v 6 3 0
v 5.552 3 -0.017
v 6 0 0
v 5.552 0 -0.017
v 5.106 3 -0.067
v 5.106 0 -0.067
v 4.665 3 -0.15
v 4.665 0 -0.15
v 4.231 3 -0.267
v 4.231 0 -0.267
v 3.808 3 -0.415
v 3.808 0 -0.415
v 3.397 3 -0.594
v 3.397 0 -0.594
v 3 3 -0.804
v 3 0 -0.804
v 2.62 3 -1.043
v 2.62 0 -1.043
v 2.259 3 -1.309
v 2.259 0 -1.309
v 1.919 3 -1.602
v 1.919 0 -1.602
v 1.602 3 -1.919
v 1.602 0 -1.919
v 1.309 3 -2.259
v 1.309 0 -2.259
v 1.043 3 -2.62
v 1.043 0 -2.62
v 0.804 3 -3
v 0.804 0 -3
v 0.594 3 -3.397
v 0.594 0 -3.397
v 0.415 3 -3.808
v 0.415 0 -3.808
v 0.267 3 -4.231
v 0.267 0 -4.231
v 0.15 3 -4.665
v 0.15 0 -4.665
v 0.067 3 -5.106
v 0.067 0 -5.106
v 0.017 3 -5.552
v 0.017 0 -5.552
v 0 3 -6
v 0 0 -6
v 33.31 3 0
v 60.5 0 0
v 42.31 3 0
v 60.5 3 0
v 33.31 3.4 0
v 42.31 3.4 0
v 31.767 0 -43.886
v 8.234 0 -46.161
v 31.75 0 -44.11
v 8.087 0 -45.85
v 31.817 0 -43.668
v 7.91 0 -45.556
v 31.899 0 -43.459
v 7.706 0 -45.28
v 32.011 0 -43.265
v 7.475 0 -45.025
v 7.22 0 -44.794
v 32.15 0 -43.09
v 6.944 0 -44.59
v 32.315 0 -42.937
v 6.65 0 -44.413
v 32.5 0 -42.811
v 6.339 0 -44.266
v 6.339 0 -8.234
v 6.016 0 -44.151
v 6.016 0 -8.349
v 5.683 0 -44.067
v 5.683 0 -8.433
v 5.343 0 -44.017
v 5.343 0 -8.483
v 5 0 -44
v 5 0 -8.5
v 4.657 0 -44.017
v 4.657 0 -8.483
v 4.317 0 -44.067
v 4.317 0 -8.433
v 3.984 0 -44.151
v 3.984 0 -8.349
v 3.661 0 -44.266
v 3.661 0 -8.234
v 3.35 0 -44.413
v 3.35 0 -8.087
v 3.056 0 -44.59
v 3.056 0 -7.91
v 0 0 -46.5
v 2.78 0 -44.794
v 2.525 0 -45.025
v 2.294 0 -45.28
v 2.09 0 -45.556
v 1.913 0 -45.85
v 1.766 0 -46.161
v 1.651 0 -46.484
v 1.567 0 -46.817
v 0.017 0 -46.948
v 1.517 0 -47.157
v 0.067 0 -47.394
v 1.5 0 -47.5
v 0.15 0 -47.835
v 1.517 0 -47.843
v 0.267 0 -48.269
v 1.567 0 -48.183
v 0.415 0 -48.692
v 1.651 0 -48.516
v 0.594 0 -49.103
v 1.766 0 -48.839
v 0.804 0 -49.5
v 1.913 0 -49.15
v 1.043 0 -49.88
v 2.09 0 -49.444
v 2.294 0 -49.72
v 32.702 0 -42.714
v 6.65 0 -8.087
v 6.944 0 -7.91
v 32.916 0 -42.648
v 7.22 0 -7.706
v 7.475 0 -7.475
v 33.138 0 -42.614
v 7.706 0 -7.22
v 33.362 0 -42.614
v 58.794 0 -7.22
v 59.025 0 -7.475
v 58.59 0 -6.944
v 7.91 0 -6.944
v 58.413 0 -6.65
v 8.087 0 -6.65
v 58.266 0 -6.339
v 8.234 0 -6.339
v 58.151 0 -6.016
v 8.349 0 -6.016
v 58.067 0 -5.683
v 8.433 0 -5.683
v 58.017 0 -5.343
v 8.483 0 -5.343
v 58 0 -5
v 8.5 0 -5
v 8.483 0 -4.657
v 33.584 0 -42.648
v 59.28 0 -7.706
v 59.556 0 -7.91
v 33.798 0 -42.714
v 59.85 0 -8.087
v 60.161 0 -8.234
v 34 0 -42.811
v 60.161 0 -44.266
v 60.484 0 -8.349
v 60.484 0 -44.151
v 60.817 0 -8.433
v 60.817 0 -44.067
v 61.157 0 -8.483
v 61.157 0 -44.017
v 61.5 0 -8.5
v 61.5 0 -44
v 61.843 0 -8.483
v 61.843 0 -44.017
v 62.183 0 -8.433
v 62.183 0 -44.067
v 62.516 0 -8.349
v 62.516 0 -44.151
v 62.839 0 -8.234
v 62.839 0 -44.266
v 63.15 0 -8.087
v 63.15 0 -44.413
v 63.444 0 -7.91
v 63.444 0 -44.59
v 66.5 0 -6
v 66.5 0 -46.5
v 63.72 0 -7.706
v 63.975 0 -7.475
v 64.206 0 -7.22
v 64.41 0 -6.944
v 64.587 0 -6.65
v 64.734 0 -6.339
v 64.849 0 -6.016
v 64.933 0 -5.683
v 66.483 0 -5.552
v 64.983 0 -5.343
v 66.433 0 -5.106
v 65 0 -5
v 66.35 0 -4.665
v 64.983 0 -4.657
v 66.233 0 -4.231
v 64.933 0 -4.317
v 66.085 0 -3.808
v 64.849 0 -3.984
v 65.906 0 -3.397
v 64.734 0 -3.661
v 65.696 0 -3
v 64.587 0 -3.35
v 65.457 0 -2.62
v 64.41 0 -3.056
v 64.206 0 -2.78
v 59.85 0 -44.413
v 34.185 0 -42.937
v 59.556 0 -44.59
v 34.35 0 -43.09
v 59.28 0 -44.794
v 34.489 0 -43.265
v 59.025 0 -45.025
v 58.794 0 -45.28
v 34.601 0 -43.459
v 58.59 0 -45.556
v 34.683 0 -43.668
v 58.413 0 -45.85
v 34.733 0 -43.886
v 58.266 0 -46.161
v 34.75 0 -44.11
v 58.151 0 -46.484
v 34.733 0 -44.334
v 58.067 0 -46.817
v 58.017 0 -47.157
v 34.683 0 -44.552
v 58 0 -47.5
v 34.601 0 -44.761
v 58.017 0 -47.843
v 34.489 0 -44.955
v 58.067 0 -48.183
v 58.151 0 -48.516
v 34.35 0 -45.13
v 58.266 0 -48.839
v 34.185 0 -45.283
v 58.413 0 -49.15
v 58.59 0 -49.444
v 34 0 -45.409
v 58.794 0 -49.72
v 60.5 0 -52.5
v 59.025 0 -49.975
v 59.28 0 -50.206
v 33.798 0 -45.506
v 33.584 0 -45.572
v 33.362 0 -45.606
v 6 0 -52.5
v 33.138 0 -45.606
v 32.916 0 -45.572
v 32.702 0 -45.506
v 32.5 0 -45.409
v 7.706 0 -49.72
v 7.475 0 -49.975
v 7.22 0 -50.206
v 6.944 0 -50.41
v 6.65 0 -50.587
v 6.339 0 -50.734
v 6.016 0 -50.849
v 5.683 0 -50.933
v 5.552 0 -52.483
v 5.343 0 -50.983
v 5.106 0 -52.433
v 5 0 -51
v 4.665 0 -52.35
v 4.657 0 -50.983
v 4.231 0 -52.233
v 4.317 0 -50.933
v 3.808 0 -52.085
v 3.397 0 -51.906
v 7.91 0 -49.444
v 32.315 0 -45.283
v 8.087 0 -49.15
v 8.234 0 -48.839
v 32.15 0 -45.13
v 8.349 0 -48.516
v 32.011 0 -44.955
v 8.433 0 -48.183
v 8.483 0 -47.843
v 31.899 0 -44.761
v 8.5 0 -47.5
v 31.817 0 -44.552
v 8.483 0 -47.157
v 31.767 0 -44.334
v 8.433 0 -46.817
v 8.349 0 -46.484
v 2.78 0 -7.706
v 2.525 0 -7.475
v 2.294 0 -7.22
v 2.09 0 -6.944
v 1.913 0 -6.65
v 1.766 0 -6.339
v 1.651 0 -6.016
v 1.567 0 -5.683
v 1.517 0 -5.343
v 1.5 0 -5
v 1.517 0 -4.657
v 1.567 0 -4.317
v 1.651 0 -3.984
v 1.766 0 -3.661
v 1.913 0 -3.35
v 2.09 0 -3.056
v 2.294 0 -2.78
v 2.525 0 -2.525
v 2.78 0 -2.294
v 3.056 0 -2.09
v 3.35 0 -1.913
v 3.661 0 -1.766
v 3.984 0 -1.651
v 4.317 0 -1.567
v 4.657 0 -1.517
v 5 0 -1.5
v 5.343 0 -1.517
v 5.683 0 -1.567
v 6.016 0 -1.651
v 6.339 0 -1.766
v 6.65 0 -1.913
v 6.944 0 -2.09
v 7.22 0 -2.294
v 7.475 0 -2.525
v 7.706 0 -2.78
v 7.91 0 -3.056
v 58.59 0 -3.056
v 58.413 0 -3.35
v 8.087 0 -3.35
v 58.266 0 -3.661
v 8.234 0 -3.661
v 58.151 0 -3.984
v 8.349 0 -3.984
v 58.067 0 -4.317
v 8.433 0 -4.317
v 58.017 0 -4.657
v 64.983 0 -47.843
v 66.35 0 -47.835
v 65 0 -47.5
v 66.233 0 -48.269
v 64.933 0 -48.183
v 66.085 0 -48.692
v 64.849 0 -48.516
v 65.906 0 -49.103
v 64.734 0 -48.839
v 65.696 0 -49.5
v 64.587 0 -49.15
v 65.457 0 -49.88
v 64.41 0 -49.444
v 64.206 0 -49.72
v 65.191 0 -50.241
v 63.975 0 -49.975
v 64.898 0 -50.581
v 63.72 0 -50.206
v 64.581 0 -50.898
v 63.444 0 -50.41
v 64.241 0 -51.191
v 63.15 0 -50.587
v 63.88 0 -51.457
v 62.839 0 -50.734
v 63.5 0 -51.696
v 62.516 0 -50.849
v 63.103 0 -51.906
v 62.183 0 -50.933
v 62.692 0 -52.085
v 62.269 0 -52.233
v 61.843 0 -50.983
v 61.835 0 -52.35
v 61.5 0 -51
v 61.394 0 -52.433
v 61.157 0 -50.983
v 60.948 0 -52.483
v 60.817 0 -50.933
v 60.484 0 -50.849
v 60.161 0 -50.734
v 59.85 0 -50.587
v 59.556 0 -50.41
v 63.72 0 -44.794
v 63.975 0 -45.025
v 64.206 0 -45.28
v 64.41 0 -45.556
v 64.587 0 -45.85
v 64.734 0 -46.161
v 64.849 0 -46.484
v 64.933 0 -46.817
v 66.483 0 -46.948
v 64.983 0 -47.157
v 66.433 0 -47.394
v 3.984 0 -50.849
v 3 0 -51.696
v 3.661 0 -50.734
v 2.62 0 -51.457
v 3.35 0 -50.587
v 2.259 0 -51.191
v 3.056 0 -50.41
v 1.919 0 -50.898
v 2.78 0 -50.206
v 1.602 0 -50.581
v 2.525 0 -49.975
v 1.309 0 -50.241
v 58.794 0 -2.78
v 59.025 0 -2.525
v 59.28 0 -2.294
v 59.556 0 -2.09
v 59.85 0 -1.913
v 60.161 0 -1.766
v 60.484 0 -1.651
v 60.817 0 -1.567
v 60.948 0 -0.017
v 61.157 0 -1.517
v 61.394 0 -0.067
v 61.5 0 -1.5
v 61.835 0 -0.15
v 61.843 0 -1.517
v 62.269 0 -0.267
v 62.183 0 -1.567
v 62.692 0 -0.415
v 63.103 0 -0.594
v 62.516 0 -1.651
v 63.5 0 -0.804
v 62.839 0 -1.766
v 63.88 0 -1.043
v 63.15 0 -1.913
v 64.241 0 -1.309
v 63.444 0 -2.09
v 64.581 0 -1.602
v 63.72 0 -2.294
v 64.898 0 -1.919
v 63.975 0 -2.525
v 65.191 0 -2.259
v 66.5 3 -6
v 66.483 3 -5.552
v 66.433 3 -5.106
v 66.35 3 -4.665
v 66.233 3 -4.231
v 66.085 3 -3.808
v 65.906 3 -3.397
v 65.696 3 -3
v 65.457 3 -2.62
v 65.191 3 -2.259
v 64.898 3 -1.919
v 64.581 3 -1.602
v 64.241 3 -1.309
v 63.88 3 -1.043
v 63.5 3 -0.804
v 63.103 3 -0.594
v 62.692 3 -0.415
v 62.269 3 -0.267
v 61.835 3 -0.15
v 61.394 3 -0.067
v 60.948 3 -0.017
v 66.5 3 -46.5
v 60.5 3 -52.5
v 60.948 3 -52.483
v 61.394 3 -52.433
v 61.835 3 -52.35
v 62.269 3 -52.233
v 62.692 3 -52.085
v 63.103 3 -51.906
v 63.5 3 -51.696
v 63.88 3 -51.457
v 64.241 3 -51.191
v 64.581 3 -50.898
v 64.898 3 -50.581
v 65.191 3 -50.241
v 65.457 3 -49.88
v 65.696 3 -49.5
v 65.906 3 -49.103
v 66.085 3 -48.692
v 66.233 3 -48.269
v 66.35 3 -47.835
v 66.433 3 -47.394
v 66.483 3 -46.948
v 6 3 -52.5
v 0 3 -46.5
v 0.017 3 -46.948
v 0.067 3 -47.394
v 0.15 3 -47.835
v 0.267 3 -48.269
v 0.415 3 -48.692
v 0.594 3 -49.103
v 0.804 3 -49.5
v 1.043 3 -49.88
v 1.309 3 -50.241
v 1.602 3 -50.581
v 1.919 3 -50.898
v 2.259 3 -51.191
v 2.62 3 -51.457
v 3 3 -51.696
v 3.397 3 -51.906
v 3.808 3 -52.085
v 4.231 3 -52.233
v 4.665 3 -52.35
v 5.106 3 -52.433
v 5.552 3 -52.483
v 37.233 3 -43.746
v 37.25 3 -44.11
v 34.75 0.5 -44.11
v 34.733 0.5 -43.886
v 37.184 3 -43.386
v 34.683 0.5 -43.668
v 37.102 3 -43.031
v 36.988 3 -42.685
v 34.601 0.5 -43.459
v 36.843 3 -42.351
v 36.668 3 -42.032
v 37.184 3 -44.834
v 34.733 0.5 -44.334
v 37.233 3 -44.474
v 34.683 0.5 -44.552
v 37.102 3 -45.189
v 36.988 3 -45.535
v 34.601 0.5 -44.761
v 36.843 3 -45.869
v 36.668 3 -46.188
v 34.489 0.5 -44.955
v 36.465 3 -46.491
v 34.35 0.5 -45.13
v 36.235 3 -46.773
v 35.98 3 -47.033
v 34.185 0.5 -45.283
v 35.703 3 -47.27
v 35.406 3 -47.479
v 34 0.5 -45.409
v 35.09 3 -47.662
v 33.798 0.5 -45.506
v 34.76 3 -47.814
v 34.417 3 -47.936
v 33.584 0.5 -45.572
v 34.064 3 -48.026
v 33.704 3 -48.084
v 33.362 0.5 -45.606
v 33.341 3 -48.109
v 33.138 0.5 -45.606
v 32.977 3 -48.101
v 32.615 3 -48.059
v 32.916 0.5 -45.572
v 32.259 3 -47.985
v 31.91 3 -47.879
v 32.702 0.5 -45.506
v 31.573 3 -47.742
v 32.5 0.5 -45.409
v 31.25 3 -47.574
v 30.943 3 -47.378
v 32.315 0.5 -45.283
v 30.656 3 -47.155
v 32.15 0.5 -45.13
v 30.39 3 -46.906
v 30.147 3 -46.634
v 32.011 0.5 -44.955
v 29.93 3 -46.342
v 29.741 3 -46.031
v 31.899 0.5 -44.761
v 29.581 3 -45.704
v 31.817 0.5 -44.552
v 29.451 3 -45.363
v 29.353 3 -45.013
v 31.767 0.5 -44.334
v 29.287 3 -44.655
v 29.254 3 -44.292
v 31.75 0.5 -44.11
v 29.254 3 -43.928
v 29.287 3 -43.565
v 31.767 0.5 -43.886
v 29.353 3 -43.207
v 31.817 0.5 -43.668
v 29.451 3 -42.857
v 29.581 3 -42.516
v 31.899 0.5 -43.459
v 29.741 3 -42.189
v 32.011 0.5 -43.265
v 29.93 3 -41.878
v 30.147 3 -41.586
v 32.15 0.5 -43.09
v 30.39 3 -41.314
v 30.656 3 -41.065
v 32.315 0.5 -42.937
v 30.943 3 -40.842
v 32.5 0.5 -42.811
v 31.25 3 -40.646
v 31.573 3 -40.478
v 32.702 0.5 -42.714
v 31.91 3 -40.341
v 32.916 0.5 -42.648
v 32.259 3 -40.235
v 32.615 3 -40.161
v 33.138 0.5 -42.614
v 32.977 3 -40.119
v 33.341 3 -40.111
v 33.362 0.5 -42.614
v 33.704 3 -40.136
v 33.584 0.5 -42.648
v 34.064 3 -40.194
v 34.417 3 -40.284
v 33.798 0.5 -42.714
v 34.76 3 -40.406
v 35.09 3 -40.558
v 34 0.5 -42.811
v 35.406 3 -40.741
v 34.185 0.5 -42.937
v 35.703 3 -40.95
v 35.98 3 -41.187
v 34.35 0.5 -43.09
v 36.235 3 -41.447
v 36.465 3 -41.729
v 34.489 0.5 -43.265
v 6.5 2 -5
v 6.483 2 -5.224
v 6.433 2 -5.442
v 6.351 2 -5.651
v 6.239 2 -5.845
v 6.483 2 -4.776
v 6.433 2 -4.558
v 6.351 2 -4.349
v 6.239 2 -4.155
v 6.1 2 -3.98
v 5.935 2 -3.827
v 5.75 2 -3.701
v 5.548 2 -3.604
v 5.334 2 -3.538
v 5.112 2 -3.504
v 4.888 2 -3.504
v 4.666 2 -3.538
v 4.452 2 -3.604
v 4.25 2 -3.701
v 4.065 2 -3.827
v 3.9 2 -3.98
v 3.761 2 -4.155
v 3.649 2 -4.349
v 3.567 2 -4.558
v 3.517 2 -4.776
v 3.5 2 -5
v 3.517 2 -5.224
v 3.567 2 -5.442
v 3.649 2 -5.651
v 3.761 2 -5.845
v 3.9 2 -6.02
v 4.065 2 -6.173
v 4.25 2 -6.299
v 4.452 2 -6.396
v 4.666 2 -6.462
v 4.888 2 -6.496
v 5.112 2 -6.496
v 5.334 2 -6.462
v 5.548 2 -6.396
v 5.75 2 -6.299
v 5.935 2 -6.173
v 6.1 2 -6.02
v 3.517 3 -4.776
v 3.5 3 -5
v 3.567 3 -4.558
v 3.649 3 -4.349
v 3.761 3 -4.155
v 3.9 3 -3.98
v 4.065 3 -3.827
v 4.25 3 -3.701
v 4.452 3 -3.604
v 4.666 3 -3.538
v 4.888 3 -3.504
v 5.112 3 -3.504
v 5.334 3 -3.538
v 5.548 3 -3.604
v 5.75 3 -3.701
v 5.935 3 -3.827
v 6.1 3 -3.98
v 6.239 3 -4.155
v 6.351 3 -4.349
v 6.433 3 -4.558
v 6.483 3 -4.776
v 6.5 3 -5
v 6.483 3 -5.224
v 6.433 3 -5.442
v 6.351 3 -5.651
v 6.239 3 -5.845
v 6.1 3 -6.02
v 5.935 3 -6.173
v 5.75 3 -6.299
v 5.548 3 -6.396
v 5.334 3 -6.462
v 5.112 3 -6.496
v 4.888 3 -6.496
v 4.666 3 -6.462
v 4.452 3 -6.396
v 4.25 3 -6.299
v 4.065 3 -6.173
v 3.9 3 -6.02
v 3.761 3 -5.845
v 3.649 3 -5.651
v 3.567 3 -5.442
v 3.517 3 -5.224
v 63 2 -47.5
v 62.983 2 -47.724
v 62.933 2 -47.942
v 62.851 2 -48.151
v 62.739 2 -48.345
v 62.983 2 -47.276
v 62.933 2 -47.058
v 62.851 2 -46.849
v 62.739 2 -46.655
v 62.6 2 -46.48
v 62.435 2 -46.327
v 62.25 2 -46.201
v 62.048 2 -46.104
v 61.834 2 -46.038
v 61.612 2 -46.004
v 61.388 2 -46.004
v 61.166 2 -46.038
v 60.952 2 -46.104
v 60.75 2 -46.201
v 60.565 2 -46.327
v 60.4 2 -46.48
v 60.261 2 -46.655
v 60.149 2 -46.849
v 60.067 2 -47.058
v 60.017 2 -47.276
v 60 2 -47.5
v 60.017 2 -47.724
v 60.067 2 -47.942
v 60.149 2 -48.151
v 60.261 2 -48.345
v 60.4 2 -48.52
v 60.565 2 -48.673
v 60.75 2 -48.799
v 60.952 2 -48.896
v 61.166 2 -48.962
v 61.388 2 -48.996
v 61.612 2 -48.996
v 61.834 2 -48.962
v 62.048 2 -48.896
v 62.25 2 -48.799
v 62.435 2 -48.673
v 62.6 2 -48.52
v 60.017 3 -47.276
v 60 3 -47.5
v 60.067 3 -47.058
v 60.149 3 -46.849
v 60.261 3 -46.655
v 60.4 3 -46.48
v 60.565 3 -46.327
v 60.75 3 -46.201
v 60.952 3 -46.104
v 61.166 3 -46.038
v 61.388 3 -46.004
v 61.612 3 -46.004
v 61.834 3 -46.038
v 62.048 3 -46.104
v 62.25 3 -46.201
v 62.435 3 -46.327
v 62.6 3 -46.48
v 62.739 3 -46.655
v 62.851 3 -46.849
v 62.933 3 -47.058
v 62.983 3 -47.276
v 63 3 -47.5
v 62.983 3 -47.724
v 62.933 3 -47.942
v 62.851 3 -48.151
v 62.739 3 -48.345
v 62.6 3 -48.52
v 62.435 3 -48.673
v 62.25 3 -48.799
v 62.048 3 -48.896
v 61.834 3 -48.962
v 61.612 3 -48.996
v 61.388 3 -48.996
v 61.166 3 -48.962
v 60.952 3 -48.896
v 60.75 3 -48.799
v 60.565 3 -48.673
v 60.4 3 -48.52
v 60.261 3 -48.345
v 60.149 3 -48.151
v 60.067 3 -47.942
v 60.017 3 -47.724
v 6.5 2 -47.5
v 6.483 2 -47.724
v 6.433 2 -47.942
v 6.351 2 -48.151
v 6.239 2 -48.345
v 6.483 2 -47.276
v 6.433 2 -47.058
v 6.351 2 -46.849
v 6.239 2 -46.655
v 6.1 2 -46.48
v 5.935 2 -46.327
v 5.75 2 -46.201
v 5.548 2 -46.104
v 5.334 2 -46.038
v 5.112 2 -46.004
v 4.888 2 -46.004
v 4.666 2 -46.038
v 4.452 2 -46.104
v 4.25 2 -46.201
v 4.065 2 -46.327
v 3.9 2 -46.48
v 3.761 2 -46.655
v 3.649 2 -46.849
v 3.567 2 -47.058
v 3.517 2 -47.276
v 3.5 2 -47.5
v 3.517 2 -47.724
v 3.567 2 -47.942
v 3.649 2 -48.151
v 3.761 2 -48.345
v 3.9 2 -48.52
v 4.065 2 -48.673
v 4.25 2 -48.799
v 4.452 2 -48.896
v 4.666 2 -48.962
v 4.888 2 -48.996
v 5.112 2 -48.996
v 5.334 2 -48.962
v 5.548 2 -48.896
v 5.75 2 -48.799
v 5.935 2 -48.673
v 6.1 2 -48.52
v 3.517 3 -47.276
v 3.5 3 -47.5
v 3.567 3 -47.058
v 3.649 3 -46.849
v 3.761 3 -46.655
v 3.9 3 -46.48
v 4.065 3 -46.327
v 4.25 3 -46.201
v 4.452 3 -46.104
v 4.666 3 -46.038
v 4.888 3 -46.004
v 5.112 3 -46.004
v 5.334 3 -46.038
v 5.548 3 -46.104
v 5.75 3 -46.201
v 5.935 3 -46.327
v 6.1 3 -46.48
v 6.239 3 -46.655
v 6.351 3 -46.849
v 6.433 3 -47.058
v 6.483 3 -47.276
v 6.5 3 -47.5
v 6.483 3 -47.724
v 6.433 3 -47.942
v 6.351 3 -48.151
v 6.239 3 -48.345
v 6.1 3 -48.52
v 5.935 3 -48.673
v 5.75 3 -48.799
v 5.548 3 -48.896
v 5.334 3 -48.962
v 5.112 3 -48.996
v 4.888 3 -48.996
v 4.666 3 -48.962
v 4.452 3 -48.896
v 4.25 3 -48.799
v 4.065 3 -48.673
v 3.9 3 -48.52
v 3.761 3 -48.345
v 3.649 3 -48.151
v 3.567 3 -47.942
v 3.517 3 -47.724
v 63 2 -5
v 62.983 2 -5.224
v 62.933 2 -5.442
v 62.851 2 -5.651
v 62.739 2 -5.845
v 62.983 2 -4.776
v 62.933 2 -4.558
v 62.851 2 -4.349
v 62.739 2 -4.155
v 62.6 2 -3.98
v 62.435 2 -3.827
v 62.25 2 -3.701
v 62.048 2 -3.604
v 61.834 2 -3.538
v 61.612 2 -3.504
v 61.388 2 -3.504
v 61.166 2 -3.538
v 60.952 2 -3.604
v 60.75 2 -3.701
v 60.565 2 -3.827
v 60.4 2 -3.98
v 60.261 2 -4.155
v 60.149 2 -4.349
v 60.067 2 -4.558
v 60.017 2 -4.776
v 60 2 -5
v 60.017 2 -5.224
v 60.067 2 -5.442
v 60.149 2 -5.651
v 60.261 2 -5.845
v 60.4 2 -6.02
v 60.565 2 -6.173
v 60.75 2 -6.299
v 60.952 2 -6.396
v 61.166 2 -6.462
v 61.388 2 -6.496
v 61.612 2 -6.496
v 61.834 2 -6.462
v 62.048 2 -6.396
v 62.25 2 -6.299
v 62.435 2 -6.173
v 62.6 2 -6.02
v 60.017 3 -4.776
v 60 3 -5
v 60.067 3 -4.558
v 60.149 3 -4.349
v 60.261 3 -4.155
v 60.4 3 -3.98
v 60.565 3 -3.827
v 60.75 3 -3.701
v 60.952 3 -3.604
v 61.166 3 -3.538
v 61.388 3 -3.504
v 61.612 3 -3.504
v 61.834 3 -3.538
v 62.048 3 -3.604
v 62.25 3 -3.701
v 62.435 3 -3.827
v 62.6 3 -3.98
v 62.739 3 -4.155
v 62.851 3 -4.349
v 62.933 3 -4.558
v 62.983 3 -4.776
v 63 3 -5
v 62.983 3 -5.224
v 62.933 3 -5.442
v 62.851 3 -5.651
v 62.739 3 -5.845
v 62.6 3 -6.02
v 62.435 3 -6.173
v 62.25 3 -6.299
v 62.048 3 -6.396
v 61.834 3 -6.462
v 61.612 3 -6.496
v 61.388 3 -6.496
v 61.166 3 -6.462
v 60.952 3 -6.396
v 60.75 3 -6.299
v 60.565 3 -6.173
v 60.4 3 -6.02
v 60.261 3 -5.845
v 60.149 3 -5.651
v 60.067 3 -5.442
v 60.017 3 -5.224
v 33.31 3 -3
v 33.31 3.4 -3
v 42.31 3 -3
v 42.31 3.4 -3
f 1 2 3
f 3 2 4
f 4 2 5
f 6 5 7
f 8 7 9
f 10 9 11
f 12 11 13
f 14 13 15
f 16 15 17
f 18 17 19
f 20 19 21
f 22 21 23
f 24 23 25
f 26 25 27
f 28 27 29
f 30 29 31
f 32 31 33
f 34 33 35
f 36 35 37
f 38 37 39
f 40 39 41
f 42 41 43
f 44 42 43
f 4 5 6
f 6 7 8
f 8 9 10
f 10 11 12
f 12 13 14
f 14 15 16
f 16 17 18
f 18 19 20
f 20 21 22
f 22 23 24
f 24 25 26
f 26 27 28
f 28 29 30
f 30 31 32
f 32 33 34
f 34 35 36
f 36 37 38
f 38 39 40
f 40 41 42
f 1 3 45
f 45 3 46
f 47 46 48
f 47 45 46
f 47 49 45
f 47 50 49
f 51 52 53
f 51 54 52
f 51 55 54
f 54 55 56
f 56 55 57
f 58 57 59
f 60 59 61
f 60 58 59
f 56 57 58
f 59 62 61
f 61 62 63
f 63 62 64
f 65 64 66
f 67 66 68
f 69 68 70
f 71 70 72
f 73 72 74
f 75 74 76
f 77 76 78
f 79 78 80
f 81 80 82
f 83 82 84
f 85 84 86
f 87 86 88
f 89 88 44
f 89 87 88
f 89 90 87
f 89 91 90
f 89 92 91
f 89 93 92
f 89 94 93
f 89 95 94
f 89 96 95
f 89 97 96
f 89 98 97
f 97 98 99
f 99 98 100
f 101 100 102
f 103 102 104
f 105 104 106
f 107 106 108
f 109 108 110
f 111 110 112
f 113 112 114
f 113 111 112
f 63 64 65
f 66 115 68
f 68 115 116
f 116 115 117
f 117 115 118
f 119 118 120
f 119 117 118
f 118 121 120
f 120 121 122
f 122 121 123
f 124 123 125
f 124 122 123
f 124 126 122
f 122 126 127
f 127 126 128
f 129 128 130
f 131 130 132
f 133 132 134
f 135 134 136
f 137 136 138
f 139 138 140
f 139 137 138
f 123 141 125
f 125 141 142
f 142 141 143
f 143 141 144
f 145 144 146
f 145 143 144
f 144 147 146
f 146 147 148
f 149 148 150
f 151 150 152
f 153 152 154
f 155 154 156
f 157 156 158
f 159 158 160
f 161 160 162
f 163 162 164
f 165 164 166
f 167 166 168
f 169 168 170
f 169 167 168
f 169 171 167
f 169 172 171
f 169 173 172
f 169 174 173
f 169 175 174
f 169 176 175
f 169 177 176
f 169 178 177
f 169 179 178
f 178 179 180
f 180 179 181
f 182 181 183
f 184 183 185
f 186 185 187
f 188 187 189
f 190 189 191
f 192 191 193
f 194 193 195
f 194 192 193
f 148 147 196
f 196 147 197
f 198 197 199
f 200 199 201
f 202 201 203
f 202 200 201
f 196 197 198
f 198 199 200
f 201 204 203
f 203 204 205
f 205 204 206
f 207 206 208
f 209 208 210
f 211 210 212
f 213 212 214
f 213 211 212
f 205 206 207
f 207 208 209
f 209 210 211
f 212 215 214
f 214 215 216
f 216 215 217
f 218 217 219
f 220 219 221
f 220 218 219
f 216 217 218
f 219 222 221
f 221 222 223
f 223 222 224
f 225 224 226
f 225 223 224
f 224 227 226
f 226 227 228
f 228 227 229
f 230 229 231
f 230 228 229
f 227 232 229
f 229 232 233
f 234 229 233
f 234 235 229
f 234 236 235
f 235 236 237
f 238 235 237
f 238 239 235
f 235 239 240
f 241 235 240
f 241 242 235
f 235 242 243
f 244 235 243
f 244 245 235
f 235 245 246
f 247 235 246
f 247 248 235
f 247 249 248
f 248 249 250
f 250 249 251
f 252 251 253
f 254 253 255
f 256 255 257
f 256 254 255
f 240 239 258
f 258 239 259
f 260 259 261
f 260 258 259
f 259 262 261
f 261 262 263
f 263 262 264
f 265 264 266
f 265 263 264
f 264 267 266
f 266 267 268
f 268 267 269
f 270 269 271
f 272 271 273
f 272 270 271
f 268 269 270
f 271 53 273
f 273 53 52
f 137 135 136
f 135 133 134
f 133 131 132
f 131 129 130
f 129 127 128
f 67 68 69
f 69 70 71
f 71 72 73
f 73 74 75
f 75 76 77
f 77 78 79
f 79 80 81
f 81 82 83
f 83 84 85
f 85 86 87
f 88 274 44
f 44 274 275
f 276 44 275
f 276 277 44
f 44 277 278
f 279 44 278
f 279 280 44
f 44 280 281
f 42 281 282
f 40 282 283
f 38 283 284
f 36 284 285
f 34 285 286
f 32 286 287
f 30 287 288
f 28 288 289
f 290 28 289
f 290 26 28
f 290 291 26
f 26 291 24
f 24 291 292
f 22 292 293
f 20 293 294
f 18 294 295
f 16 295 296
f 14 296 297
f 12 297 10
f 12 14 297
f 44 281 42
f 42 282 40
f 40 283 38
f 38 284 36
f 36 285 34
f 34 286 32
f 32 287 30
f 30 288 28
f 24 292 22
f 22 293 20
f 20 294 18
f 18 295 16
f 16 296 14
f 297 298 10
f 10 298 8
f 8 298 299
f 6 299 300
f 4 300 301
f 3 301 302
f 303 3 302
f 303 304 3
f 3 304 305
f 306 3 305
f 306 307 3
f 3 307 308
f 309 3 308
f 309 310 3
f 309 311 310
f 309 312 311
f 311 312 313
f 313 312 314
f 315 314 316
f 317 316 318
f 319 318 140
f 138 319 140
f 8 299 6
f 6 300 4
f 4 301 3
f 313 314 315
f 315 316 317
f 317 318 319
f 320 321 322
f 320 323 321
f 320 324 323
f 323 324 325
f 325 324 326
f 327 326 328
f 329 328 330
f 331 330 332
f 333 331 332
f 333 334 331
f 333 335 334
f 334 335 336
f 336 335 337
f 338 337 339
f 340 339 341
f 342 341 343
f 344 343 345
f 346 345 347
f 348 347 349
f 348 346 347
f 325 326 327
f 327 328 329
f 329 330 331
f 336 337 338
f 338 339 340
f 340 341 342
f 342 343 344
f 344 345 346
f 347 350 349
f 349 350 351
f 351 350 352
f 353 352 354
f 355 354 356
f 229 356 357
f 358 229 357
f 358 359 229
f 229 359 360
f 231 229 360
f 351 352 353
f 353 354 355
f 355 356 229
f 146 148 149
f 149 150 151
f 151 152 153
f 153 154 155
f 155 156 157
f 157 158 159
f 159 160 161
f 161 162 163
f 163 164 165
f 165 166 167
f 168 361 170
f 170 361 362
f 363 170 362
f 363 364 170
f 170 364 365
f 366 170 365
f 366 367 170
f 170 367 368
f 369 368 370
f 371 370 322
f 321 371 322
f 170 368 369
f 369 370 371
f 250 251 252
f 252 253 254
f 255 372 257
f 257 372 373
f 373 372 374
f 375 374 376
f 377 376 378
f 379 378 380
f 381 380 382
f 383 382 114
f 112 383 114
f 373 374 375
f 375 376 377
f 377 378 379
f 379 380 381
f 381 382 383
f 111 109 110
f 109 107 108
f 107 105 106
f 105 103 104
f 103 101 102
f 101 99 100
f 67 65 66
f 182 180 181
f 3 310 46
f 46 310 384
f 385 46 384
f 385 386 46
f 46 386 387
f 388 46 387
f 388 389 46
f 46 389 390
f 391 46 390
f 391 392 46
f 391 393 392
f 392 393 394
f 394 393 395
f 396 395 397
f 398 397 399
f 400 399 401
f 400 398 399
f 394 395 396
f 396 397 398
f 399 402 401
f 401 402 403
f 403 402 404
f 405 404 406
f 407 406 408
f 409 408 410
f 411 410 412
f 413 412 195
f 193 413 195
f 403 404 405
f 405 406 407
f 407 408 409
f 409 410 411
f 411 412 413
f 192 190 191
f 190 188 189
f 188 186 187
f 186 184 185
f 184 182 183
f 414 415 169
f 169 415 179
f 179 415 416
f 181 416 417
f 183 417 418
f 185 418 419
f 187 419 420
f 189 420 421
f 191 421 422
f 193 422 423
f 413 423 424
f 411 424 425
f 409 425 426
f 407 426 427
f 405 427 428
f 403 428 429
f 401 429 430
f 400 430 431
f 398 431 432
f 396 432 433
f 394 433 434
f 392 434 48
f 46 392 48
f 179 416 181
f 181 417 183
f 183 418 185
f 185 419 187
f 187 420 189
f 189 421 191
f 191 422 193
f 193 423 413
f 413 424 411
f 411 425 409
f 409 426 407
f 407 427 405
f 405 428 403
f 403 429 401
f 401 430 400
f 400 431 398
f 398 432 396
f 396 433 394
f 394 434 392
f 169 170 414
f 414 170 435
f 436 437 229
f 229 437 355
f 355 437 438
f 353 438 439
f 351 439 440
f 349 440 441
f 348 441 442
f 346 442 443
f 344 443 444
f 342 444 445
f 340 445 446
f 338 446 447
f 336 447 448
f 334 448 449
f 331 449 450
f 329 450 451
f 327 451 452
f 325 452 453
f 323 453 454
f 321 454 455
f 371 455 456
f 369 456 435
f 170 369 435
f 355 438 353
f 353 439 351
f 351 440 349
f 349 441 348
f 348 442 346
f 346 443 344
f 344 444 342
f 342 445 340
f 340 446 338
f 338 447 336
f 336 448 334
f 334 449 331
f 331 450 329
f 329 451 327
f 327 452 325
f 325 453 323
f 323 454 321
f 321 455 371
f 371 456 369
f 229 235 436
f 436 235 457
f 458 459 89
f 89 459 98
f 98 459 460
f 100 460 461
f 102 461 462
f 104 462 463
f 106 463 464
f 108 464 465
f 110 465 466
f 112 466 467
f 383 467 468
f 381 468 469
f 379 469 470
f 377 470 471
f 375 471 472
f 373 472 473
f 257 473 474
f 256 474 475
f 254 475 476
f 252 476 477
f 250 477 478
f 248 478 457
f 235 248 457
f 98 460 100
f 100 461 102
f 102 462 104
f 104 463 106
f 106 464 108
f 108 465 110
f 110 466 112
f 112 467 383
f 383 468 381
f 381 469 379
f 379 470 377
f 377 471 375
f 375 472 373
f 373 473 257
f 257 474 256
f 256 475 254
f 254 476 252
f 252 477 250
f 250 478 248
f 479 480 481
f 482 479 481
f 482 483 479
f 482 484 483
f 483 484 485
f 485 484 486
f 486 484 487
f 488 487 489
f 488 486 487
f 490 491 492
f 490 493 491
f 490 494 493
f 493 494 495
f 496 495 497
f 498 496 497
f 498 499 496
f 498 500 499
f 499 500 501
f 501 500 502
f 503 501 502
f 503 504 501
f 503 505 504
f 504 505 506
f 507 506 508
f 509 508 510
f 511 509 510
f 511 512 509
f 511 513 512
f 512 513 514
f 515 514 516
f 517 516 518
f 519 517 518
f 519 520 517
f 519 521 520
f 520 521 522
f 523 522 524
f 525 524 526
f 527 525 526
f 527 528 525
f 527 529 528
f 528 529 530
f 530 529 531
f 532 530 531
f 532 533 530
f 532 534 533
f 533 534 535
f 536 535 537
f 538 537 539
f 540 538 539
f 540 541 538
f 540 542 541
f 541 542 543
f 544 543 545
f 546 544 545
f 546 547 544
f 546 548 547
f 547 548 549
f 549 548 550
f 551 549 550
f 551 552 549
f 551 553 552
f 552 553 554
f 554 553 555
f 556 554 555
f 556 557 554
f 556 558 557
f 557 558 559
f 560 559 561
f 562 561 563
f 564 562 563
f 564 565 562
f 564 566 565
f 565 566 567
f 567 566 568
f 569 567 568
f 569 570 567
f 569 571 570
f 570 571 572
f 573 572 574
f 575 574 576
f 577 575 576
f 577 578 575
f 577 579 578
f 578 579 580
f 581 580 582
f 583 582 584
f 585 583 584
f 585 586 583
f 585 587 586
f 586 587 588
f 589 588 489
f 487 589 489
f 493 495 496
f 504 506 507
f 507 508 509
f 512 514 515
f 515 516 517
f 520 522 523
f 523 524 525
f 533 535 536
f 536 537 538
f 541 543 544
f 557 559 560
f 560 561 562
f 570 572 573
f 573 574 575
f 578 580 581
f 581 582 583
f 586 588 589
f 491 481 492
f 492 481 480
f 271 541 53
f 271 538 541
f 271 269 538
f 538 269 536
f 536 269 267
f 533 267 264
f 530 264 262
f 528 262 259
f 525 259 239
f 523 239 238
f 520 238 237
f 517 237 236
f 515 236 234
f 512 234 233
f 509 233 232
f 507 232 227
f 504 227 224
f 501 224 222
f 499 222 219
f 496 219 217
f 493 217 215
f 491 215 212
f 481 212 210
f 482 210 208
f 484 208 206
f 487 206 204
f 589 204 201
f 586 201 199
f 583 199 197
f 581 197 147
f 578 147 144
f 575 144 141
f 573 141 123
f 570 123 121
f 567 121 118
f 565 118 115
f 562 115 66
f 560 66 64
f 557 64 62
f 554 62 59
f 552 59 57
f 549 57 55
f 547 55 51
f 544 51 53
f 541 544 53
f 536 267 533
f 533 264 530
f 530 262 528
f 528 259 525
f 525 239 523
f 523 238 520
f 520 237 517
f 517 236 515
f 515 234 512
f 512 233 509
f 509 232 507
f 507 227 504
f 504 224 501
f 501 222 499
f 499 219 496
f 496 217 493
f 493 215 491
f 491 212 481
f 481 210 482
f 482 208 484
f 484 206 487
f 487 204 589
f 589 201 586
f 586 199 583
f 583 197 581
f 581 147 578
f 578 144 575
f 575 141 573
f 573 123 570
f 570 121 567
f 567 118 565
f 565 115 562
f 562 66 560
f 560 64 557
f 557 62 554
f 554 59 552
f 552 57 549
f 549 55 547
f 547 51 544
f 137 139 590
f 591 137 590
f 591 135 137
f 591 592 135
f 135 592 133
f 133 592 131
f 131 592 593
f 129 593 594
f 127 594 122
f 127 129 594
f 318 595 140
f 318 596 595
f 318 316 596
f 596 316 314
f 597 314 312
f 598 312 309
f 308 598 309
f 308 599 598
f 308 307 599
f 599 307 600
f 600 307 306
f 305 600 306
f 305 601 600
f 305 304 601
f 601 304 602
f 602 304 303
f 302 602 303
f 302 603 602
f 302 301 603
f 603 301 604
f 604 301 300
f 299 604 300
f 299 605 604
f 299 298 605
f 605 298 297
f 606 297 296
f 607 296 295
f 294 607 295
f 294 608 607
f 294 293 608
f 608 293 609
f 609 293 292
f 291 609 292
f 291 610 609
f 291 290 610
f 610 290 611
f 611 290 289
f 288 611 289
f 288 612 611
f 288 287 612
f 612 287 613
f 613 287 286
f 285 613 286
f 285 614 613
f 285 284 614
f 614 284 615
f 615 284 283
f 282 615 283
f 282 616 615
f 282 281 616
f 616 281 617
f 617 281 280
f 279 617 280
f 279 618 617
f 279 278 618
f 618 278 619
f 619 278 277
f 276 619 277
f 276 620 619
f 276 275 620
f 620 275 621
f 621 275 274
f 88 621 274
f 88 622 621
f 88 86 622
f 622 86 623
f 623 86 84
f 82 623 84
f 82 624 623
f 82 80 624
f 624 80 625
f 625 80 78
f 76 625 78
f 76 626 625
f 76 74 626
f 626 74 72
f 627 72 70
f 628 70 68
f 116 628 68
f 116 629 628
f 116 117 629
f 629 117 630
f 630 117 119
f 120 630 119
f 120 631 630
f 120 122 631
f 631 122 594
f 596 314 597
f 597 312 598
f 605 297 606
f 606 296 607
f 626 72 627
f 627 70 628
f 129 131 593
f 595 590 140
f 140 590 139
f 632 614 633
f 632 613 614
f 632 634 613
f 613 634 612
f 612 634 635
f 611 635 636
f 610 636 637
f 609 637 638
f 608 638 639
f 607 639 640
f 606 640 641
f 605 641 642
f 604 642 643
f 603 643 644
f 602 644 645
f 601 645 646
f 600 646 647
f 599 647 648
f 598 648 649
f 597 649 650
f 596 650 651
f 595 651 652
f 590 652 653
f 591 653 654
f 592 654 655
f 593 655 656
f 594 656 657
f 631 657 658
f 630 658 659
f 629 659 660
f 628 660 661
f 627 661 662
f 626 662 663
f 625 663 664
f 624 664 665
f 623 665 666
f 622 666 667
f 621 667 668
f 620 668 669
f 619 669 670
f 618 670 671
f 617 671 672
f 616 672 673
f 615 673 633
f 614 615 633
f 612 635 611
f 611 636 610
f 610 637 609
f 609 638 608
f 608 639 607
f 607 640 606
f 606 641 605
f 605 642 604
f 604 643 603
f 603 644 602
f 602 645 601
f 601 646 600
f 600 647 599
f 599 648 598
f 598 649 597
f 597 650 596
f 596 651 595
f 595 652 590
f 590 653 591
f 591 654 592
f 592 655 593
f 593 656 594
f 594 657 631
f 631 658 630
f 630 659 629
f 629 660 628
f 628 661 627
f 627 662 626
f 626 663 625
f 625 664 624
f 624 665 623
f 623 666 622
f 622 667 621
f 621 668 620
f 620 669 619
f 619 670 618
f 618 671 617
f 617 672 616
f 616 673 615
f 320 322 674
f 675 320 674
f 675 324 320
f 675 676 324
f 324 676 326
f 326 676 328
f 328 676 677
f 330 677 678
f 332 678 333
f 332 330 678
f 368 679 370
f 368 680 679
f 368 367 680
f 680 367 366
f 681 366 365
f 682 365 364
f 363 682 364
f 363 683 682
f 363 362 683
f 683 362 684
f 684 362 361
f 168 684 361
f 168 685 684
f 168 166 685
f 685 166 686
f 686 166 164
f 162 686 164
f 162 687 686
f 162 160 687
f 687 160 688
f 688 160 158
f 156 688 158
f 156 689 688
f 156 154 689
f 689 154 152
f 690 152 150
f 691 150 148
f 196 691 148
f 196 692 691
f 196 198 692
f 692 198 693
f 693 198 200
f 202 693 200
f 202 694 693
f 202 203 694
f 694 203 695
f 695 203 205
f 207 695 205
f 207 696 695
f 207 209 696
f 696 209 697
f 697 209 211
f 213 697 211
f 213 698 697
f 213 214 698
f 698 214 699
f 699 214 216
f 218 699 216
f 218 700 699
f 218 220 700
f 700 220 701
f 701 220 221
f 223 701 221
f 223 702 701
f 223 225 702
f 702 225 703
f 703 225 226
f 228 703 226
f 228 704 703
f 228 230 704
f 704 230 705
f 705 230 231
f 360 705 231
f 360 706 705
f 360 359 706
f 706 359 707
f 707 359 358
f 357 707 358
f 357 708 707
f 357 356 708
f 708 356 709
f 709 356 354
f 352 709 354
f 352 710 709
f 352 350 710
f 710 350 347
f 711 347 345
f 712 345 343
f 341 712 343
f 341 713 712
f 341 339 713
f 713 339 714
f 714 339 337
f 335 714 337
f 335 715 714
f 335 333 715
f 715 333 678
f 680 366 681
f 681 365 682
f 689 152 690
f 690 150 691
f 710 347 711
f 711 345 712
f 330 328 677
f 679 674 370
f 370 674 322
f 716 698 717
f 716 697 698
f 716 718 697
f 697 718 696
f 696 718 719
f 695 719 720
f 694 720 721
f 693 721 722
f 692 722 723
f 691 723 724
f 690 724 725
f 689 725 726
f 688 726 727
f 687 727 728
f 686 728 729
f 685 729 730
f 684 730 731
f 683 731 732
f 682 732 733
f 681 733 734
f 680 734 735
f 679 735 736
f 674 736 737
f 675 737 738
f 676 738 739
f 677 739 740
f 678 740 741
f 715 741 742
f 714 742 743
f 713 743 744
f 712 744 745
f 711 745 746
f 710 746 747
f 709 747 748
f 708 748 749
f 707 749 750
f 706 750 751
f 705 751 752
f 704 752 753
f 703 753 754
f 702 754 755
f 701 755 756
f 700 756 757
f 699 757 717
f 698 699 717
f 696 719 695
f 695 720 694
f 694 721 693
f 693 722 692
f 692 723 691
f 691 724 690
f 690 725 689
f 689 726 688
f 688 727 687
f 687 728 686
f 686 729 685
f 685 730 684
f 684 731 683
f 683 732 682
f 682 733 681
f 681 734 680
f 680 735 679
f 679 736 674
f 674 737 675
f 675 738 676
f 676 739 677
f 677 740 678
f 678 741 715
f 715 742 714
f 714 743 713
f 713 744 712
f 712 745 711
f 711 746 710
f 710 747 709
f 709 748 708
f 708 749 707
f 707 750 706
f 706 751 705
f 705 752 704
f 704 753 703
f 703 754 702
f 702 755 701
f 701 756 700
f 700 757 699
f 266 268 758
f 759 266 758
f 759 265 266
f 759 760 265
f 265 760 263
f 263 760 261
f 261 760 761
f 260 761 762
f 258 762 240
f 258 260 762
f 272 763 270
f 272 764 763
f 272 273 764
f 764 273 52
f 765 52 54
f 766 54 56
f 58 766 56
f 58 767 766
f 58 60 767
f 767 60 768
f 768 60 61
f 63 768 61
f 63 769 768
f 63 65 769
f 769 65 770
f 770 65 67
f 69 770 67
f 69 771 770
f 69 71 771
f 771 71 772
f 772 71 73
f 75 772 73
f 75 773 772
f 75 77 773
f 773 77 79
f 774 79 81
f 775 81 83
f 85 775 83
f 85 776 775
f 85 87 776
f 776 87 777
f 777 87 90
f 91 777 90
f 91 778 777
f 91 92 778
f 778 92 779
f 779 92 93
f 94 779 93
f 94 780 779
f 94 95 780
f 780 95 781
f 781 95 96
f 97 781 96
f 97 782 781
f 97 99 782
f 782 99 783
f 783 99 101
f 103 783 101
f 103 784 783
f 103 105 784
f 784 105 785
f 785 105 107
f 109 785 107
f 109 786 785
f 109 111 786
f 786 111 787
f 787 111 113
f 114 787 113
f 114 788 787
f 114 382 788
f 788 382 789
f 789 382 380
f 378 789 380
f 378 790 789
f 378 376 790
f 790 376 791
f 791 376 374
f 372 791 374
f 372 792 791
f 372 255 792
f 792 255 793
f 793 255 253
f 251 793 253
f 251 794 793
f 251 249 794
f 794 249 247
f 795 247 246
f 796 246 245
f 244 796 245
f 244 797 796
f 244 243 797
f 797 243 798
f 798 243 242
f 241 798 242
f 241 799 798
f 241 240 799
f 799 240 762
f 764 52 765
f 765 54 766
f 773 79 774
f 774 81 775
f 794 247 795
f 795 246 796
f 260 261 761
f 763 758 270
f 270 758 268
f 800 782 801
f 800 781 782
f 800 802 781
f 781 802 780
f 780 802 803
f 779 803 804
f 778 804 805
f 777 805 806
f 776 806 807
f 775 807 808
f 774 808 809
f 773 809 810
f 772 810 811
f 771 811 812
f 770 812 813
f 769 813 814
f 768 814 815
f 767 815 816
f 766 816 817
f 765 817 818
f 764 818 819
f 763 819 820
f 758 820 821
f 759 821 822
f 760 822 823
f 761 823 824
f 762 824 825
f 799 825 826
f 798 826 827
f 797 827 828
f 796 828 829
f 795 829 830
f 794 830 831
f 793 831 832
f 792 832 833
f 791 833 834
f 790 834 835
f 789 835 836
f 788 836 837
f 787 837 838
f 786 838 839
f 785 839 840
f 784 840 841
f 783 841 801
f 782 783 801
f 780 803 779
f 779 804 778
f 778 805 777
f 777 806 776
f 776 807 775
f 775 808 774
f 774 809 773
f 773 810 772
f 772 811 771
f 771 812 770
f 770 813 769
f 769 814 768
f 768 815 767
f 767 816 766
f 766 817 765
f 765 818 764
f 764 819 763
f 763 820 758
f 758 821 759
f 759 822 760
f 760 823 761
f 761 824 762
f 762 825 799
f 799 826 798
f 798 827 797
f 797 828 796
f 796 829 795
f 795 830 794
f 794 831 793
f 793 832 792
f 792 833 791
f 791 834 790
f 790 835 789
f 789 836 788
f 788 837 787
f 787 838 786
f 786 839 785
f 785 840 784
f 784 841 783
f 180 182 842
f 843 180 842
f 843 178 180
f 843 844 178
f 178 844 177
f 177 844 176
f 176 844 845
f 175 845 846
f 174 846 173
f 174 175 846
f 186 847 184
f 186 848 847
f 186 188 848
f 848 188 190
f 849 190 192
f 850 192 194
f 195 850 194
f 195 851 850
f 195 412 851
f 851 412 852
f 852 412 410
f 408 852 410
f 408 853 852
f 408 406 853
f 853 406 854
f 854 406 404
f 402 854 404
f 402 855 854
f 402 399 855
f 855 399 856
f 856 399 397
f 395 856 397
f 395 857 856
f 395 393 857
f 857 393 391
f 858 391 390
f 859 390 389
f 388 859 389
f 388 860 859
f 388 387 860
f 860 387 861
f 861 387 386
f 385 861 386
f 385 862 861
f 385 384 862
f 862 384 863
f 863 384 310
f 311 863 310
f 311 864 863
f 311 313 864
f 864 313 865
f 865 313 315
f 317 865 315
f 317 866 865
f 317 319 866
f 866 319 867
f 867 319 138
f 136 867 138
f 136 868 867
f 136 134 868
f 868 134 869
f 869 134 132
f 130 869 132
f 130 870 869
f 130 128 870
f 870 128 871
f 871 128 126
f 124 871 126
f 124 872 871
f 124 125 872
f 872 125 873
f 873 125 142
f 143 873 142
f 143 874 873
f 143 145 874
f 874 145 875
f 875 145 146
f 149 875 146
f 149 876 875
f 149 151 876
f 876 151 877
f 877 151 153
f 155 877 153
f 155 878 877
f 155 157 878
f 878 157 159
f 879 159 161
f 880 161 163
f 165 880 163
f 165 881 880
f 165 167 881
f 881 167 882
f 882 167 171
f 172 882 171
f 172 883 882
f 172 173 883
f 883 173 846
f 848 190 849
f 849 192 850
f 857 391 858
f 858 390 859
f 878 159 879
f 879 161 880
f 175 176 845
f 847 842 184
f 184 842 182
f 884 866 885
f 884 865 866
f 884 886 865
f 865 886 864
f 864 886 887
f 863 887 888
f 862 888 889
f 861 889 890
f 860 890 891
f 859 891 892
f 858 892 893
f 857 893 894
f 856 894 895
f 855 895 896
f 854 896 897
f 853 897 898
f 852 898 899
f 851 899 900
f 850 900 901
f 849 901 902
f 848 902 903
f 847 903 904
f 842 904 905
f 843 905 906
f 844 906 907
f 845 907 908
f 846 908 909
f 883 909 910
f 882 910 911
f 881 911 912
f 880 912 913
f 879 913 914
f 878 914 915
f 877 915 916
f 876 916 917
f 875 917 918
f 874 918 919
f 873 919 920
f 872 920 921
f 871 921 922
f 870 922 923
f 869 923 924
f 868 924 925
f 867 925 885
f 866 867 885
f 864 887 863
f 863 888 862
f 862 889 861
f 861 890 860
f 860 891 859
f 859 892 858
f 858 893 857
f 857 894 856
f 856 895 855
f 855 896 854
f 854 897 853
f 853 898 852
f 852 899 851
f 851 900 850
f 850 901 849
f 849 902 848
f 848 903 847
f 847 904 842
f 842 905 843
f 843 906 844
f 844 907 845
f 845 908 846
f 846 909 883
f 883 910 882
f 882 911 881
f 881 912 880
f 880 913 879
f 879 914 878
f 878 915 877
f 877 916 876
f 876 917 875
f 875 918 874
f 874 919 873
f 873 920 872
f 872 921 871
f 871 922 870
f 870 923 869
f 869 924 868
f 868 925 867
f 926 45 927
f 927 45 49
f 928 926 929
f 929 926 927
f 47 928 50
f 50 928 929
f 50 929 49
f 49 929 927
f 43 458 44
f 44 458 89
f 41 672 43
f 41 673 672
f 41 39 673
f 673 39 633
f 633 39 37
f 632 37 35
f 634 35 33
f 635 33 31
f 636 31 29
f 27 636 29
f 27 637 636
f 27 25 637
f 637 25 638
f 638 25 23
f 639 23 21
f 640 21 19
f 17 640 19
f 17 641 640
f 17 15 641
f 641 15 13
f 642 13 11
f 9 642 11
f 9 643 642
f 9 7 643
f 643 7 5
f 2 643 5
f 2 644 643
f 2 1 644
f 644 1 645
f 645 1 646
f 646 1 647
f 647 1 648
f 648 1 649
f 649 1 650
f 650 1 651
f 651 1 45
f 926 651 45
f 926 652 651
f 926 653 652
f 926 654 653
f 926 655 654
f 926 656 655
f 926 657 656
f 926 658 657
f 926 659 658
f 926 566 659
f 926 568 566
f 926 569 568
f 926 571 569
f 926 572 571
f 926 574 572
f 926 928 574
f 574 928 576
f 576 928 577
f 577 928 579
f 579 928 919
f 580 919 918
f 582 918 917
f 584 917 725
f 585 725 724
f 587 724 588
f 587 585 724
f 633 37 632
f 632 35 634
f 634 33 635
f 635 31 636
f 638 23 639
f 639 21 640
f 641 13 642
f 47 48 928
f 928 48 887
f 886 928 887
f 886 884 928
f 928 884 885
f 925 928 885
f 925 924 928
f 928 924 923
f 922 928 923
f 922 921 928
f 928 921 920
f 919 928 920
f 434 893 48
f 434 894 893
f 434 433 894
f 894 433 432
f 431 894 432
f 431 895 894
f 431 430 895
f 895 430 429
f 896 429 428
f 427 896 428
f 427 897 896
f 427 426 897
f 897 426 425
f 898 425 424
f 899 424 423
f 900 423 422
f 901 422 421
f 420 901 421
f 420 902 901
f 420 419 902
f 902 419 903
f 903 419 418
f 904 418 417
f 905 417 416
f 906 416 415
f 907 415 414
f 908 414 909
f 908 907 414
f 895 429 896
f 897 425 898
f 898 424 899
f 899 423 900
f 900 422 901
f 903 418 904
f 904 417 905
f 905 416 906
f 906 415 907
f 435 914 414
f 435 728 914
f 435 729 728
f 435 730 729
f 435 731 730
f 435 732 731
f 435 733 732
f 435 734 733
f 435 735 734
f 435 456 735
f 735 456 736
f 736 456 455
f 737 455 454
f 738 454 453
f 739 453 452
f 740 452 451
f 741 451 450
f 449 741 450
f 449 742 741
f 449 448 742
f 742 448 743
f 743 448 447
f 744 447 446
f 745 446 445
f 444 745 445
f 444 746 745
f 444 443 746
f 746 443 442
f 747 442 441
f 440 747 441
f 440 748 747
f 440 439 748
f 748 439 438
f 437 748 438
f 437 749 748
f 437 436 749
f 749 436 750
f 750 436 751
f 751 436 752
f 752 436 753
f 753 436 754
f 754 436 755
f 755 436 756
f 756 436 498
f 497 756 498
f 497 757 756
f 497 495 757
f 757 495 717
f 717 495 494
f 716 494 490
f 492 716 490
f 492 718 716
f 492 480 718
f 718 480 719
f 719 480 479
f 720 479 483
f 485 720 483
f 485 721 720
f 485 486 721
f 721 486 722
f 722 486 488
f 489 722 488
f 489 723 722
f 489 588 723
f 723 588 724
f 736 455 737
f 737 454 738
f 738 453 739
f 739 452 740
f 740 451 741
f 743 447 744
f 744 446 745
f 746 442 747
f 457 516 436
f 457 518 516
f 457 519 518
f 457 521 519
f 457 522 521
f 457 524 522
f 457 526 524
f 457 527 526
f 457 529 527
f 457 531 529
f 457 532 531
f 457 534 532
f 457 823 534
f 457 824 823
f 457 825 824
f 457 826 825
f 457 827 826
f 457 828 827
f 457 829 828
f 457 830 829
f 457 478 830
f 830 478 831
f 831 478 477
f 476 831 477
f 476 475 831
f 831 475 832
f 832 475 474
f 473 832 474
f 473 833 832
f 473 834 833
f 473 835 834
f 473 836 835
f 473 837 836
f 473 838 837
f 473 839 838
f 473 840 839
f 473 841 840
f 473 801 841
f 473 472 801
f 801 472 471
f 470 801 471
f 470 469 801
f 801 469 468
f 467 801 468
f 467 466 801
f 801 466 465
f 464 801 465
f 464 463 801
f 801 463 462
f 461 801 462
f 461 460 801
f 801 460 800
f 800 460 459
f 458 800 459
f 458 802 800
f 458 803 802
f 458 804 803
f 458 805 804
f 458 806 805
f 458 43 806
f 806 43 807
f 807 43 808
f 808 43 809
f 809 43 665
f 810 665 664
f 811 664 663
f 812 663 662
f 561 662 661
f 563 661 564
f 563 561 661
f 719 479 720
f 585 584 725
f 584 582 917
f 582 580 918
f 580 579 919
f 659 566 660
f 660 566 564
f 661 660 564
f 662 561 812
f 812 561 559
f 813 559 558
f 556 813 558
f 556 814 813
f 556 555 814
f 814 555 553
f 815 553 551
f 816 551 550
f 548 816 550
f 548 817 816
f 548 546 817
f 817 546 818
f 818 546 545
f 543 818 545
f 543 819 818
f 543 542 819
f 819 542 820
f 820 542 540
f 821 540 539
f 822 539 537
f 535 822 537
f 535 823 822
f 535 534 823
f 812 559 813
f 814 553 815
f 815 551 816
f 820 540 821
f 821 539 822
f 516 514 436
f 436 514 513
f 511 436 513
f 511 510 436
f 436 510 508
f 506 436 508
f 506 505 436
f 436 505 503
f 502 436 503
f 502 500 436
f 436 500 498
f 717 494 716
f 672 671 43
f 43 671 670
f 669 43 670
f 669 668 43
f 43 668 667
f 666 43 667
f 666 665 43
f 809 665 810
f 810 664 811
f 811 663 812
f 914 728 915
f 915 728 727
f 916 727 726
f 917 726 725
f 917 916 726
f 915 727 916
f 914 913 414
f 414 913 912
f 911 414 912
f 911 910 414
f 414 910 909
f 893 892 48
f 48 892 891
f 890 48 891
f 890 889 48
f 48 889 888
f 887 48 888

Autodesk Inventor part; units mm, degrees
ref_plane "YZ Plane" through (0, 0, 0) normal (1, 0, 0) x (0, 1, 0)
ref_plane "XZ Plane" through (0, 0, 0) normal (0, 1, 0) x (-1, 0, 0)
ref_plane "XY Plane" through (0, 0, 0) normal (0, 0, 1) x (1, 0, 0)
sketch "Sketch1" plane through (0, 0, 0) normal (0, 1, 0) x (-1, 0, 0)
  line L0 (0, 0) -> (-66.5, 0)
  line L1 (-66.5, 0) -> (-66.5, -52.5)
  line L2 (-66.5, -52.5) -> (0, -52.5)
  line L3 (0, -52.5) -> (0, 0)
  dimension "d0" = 52.5
  dimension "d1" = 66.5
extrude "Extrusion1" add sketch "Sketch1" along normal blind 3
sketch "Sketch2" plane through (0, 3, 0) normal (0, 1, 0) x (1, 0, 0)
  line L0 (0, 0) -> (66.5, 0) projected
  line L1 (66.5, 0) -> (66.5, 52.5) projected
  line L2 (33.31, 0) -> (42.31, 0)
  line L3 (42.31, 0) -> (42.31, 3)
  line L4 (42.31, 3) -> (33.31, 3)
  line L5 (33.31, 3) -> (33.31, 0)
  point P0 (37.81, 3)
  dimension "d5" = 9
  dimension "d6" = 3
  dimension "d7" = 28.69
extrude "Extrusion2" add sketch "Sketch2" along normal blind 0.4
sketch "Sketch4" plane through (0, 0, 0) normal (0, -1, 0) x (1, 0, 0)
  line L0 (66.5, -52.5) -> (0, -52.5) projected
  line L1 (66.5, 0) -> (66.5, -52.5) projected
  line L2 (61.5, -47.5) -> (5, -47.5) construction
  line L3 (5, -47.5) -> (5, -5) construction
  line L4 (5, -5) -> (61.5, -5) construction
  line L5 (61.5, -5) -> (61.5, -47.5) construction
  point P0 (33.25, -47.5)
  point P1 (33.25, -52.5)
  point P2 (61.5, -26.25)
  point P3 (66.5, -26.25)
  dimension "d12" = 56.5
  dimension "d13" = 42.5
hole "Hole1" at (61.5, 0, -47.5) at (5, 0, -47.5) at (5, 0, -5) at (61.5, 0, -5) direction (0, 1, 0) diameter 3 end through all countersink diameter 7 countersink angle 90
sketch "Sketch5" plane through (0, 3, 0) normal (0, 1, 0) x (1, 0, 0)
  line L0 (66.5, 52.5) -> (0, 52.5) projected
  line L1 (0, 52.5) -> (0, 0) projected
  line L2 (56.11, 3.39) -> (10.39, 3.39) construction
  line L3 (10.39, 3.39) -> (10.39, 49.11) construction
  line L4 (10.39, 49.11) -> (56.11, 49.11) construction
  line L5 (56.11, 49.11) -> (56.11, 3.39) construction
  point P0 (33.25, 49.11)
  point P1 (33.25, 52.5)
  point P2 (10.39, 26.25)
  point P3 (0, 26.25)
  point P4 (33.25, 44.11)
  dimension "d21" = 45.72
  dimension "d22" = 5
  dimension "d23" = 22.86
hole "Hole2" at (33.25, 3, -44.11) direction (0, -1, 0) diameter 3 end through all countersink diameter 8 countersink angle 90
fillet "Fillet1" radius 6 4 edges at (0, 1.5, -52.5) (66.5, 1.5, -52.5) (66.5, 1.5, 0) (0, 1.5, 0)
properties part number "top"
